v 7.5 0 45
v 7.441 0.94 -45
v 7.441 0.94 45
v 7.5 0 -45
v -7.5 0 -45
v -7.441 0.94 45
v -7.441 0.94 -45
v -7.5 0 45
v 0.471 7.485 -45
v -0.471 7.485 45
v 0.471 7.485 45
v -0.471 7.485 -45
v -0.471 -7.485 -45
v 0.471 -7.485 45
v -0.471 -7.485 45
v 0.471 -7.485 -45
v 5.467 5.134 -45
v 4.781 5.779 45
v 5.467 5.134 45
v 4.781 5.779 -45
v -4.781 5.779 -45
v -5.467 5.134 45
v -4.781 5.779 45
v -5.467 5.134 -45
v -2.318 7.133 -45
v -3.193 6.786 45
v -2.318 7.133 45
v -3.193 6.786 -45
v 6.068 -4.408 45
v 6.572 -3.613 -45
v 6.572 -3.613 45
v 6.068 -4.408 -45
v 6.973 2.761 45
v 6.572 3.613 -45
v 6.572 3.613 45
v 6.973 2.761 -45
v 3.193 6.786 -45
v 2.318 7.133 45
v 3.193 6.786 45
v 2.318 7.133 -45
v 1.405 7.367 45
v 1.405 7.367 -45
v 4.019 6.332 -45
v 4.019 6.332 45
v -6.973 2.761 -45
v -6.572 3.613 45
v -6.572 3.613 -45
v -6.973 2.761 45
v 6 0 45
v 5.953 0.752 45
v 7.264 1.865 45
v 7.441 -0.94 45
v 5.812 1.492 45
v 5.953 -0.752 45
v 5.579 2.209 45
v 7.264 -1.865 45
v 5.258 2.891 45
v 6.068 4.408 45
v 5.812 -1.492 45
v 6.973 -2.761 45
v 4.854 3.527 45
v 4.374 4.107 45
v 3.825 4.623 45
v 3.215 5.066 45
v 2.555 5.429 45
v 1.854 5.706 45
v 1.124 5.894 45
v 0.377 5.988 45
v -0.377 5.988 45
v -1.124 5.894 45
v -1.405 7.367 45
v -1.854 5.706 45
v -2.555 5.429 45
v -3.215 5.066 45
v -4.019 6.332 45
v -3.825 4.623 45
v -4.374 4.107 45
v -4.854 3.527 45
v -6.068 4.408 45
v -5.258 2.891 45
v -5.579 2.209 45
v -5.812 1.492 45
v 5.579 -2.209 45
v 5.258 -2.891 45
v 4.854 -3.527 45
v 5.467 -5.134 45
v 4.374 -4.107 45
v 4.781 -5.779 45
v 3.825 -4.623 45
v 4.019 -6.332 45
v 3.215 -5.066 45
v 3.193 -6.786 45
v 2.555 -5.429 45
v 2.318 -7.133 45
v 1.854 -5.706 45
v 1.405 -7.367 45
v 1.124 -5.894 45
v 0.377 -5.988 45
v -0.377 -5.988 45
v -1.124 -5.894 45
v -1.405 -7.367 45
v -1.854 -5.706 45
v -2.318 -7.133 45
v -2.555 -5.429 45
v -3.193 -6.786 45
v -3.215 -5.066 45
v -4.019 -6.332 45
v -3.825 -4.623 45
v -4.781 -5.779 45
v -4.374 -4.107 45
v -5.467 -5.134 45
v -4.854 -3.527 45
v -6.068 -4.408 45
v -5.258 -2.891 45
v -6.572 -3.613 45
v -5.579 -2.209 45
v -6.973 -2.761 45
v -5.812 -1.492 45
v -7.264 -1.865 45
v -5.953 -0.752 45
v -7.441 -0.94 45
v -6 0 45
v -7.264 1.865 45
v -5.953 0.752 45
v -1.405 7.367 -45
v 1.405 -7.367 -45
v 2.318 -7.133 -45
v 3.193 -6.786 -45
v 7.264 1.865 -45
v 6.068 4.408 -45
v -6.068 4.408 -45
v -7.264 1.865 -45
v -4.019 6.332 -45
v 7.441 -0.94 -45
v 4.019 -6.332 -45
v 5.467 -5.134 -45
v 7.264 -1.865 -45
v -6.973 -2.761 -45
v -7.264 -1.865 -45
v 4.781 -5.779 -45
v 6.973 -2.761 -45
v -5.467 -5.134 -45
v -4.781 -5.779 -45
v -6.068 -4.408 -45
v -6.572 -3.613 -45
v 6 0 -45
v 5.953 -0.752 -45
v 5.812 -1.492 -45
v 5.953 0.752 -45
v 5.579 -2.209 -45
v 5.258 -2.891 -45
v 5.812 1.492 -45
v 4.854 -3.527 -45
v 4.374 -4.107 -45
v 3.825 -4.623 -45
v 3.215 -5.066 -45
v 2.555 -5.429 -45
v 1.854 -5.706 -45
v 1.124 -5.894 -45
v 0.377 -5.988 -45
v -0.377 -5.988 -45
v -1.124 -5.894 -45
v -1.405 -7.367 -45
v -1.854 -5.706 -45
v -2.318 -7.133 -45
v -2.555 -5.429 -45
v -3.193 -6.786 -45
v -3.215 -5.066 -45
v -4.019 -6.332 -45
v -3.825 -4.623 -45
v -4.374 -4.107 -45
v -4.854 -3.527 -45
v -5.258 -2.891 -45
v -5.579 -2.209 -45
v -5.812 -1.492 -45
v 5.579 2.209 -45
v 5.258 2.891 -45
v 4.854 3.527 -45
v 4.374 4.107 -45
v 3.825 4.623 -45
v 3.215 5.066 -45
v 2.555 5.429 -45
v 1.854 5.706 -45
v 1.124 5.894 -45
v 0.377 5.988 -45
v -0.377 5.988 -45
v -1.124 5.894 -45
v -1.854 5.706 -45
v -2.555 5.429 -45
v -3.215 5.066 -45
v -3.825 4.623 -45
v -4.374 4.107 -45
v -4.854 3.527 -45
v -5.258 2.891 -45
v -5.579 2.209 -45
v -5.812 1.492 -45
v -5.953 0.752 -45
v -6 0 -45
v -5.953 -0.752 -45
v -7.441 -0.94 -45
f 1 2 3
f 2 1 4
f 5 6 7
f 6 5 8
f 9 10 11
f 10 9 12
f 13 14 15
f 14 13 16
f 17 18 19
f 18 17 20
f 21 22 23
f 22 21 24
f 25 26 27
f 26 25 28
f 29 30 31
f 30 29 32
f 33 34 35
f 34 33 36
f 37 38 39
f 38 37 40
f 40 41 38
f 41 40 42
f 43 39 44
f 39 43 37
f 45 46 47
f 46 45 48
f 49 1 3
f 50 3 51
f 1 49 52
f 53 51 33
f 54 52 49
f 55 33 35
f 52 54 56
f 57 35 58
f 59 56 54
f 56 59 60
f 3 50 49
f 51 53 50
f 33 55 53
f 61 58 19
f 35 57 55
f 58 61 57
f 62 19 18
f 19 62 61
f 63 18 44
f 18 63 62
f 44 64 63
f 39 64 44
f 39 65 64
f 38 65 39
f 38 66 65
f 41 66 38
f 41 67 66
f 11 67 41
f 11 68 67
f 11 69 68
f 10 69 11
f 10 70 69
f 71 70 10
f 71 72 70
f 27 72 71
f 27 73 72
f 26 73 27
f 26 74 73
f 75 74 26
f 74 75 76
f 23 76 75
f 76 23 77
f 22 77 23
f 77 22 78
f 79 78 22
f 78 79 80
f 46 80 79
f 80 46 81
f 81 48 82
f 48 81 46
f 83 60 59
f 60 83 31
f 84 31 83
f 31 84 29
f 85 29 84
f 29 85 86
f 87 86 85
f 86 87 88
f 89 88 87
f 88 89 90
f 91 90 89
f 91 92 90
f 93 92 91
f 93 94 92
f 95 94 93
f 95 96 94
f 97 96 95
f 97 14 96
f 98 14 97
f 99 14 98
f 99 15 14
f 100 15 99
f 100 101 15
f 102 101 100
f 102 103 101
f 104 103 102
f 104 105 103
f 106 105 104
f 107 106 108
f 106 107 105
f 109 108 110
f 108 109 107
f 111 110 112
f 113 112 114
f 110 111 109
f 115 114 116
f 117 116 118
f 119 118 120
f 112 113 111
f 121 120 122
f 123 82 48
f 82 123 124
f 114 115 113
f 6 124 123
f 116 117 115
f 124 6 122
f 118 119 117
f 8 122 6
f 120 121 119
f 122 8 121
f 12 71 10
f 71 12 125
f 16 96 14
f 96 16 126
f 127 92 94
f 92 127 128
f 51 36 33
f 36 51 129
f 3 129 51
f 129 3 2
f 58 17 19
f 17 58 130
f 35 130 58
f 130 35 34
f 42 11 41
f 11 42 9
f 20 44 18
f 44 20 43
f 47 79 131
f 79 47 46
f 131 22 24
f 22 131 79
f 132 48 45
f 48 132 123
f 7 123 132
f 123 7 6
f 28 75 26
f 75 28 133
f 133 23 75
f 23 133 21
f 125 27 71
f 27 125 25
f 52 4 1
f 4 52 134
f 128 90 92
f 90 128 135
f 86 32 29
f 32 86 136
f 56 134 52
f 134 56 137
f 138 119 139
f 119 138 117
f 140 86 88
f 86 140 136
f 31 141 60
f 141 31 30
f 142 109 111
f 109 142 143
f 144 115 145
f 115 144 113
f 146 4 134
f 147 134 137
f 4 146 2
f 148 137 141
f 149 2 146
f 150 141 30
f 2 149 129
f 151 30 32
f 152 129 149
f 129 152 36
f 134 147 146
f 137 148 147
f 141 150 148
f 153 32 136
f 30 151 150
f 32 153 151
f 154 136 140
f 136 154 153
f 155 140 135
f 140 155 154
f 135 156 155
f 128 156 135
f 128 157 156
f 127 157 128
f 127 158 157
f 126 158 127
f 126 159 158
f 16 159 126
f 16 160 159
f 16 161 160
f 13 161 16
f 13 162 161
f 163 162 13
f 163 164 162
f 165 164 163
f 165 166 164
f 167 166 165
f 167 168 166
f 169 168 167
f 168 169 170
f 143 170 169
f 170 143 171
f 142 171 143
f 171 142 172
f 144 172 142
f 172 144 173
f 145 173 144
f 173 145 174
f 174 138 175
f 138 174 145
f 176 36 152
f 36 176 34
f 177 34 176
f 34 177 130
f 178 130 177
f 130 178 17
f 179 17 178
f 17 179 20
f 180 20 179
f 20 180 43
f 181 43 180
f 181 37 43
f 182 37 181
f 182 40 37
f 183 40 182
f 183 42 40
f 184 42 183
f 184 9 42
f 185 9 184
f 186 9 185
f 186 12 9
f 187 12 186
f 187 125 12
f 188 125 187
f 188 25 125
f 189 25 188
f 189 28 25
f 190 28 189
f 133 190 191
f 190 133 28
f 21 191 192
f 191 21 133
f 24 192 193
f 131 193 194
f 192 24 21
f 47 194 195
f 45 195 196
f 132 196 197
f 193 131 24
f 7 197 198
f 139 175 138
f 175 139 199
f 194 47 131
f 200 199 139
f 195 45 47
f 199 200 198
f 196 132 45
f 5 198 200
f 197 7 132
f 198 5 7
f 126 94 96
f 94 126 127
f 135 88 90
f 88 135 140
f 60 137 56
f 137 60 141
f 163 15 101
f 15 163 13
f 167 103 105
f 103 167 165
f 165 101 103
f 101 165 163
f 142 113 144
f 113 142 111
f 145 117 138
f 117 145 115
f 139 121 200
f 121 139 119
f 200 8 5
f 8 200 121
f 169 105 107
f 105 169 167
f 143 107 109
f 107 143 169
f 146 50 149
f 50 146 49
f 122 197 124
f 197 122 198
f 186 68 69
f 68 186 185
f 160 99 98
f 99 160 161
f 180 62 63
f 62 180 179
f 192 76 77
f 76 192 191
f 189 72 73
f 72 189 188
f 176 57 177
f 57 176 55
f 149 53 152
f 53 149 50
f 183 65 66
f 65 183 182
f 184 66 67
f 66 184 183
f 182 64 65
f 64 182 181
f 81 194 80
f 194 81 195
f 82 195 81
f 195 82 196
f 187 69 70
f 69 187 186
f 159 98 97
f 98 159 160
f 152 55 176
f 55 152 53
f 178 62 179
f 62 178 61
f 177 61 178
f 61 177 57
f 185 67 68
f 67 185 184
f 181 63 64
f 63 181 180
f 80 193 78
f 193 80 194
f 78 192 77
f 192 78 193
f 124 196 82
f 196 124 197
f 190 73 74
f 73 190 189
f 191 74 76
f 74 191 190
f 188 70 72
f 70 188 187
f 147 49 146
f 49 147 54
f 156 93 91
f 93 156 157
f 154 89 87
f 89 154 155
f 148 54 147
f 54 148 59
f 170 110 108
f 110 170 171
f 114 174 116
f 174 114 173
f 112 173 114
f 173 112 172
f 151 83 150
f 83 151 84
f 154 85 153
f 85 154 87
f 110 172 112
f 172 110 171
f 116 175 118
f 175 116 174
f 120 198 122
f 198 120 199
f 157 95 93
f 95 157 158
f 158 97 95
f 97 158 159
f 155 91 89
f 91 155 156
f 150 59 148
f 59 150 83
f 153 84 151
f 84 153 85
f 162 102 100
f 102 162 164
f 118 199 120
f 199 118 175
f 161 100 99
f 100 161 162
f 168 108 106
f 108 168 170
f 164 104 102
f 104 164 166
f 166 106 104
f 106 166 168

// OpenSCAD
$fn = 50;


difference() {
	union() {
		translate(v = [0, 0, -45.0000000000]) {
			cylinder(h = 90, r = 7.5000000000);
		}
	}
	union() {
		translate(v = [0, 0, -100.0000000000]) {
			cylinder(h = 200, r = 6);
		}
	}
}
